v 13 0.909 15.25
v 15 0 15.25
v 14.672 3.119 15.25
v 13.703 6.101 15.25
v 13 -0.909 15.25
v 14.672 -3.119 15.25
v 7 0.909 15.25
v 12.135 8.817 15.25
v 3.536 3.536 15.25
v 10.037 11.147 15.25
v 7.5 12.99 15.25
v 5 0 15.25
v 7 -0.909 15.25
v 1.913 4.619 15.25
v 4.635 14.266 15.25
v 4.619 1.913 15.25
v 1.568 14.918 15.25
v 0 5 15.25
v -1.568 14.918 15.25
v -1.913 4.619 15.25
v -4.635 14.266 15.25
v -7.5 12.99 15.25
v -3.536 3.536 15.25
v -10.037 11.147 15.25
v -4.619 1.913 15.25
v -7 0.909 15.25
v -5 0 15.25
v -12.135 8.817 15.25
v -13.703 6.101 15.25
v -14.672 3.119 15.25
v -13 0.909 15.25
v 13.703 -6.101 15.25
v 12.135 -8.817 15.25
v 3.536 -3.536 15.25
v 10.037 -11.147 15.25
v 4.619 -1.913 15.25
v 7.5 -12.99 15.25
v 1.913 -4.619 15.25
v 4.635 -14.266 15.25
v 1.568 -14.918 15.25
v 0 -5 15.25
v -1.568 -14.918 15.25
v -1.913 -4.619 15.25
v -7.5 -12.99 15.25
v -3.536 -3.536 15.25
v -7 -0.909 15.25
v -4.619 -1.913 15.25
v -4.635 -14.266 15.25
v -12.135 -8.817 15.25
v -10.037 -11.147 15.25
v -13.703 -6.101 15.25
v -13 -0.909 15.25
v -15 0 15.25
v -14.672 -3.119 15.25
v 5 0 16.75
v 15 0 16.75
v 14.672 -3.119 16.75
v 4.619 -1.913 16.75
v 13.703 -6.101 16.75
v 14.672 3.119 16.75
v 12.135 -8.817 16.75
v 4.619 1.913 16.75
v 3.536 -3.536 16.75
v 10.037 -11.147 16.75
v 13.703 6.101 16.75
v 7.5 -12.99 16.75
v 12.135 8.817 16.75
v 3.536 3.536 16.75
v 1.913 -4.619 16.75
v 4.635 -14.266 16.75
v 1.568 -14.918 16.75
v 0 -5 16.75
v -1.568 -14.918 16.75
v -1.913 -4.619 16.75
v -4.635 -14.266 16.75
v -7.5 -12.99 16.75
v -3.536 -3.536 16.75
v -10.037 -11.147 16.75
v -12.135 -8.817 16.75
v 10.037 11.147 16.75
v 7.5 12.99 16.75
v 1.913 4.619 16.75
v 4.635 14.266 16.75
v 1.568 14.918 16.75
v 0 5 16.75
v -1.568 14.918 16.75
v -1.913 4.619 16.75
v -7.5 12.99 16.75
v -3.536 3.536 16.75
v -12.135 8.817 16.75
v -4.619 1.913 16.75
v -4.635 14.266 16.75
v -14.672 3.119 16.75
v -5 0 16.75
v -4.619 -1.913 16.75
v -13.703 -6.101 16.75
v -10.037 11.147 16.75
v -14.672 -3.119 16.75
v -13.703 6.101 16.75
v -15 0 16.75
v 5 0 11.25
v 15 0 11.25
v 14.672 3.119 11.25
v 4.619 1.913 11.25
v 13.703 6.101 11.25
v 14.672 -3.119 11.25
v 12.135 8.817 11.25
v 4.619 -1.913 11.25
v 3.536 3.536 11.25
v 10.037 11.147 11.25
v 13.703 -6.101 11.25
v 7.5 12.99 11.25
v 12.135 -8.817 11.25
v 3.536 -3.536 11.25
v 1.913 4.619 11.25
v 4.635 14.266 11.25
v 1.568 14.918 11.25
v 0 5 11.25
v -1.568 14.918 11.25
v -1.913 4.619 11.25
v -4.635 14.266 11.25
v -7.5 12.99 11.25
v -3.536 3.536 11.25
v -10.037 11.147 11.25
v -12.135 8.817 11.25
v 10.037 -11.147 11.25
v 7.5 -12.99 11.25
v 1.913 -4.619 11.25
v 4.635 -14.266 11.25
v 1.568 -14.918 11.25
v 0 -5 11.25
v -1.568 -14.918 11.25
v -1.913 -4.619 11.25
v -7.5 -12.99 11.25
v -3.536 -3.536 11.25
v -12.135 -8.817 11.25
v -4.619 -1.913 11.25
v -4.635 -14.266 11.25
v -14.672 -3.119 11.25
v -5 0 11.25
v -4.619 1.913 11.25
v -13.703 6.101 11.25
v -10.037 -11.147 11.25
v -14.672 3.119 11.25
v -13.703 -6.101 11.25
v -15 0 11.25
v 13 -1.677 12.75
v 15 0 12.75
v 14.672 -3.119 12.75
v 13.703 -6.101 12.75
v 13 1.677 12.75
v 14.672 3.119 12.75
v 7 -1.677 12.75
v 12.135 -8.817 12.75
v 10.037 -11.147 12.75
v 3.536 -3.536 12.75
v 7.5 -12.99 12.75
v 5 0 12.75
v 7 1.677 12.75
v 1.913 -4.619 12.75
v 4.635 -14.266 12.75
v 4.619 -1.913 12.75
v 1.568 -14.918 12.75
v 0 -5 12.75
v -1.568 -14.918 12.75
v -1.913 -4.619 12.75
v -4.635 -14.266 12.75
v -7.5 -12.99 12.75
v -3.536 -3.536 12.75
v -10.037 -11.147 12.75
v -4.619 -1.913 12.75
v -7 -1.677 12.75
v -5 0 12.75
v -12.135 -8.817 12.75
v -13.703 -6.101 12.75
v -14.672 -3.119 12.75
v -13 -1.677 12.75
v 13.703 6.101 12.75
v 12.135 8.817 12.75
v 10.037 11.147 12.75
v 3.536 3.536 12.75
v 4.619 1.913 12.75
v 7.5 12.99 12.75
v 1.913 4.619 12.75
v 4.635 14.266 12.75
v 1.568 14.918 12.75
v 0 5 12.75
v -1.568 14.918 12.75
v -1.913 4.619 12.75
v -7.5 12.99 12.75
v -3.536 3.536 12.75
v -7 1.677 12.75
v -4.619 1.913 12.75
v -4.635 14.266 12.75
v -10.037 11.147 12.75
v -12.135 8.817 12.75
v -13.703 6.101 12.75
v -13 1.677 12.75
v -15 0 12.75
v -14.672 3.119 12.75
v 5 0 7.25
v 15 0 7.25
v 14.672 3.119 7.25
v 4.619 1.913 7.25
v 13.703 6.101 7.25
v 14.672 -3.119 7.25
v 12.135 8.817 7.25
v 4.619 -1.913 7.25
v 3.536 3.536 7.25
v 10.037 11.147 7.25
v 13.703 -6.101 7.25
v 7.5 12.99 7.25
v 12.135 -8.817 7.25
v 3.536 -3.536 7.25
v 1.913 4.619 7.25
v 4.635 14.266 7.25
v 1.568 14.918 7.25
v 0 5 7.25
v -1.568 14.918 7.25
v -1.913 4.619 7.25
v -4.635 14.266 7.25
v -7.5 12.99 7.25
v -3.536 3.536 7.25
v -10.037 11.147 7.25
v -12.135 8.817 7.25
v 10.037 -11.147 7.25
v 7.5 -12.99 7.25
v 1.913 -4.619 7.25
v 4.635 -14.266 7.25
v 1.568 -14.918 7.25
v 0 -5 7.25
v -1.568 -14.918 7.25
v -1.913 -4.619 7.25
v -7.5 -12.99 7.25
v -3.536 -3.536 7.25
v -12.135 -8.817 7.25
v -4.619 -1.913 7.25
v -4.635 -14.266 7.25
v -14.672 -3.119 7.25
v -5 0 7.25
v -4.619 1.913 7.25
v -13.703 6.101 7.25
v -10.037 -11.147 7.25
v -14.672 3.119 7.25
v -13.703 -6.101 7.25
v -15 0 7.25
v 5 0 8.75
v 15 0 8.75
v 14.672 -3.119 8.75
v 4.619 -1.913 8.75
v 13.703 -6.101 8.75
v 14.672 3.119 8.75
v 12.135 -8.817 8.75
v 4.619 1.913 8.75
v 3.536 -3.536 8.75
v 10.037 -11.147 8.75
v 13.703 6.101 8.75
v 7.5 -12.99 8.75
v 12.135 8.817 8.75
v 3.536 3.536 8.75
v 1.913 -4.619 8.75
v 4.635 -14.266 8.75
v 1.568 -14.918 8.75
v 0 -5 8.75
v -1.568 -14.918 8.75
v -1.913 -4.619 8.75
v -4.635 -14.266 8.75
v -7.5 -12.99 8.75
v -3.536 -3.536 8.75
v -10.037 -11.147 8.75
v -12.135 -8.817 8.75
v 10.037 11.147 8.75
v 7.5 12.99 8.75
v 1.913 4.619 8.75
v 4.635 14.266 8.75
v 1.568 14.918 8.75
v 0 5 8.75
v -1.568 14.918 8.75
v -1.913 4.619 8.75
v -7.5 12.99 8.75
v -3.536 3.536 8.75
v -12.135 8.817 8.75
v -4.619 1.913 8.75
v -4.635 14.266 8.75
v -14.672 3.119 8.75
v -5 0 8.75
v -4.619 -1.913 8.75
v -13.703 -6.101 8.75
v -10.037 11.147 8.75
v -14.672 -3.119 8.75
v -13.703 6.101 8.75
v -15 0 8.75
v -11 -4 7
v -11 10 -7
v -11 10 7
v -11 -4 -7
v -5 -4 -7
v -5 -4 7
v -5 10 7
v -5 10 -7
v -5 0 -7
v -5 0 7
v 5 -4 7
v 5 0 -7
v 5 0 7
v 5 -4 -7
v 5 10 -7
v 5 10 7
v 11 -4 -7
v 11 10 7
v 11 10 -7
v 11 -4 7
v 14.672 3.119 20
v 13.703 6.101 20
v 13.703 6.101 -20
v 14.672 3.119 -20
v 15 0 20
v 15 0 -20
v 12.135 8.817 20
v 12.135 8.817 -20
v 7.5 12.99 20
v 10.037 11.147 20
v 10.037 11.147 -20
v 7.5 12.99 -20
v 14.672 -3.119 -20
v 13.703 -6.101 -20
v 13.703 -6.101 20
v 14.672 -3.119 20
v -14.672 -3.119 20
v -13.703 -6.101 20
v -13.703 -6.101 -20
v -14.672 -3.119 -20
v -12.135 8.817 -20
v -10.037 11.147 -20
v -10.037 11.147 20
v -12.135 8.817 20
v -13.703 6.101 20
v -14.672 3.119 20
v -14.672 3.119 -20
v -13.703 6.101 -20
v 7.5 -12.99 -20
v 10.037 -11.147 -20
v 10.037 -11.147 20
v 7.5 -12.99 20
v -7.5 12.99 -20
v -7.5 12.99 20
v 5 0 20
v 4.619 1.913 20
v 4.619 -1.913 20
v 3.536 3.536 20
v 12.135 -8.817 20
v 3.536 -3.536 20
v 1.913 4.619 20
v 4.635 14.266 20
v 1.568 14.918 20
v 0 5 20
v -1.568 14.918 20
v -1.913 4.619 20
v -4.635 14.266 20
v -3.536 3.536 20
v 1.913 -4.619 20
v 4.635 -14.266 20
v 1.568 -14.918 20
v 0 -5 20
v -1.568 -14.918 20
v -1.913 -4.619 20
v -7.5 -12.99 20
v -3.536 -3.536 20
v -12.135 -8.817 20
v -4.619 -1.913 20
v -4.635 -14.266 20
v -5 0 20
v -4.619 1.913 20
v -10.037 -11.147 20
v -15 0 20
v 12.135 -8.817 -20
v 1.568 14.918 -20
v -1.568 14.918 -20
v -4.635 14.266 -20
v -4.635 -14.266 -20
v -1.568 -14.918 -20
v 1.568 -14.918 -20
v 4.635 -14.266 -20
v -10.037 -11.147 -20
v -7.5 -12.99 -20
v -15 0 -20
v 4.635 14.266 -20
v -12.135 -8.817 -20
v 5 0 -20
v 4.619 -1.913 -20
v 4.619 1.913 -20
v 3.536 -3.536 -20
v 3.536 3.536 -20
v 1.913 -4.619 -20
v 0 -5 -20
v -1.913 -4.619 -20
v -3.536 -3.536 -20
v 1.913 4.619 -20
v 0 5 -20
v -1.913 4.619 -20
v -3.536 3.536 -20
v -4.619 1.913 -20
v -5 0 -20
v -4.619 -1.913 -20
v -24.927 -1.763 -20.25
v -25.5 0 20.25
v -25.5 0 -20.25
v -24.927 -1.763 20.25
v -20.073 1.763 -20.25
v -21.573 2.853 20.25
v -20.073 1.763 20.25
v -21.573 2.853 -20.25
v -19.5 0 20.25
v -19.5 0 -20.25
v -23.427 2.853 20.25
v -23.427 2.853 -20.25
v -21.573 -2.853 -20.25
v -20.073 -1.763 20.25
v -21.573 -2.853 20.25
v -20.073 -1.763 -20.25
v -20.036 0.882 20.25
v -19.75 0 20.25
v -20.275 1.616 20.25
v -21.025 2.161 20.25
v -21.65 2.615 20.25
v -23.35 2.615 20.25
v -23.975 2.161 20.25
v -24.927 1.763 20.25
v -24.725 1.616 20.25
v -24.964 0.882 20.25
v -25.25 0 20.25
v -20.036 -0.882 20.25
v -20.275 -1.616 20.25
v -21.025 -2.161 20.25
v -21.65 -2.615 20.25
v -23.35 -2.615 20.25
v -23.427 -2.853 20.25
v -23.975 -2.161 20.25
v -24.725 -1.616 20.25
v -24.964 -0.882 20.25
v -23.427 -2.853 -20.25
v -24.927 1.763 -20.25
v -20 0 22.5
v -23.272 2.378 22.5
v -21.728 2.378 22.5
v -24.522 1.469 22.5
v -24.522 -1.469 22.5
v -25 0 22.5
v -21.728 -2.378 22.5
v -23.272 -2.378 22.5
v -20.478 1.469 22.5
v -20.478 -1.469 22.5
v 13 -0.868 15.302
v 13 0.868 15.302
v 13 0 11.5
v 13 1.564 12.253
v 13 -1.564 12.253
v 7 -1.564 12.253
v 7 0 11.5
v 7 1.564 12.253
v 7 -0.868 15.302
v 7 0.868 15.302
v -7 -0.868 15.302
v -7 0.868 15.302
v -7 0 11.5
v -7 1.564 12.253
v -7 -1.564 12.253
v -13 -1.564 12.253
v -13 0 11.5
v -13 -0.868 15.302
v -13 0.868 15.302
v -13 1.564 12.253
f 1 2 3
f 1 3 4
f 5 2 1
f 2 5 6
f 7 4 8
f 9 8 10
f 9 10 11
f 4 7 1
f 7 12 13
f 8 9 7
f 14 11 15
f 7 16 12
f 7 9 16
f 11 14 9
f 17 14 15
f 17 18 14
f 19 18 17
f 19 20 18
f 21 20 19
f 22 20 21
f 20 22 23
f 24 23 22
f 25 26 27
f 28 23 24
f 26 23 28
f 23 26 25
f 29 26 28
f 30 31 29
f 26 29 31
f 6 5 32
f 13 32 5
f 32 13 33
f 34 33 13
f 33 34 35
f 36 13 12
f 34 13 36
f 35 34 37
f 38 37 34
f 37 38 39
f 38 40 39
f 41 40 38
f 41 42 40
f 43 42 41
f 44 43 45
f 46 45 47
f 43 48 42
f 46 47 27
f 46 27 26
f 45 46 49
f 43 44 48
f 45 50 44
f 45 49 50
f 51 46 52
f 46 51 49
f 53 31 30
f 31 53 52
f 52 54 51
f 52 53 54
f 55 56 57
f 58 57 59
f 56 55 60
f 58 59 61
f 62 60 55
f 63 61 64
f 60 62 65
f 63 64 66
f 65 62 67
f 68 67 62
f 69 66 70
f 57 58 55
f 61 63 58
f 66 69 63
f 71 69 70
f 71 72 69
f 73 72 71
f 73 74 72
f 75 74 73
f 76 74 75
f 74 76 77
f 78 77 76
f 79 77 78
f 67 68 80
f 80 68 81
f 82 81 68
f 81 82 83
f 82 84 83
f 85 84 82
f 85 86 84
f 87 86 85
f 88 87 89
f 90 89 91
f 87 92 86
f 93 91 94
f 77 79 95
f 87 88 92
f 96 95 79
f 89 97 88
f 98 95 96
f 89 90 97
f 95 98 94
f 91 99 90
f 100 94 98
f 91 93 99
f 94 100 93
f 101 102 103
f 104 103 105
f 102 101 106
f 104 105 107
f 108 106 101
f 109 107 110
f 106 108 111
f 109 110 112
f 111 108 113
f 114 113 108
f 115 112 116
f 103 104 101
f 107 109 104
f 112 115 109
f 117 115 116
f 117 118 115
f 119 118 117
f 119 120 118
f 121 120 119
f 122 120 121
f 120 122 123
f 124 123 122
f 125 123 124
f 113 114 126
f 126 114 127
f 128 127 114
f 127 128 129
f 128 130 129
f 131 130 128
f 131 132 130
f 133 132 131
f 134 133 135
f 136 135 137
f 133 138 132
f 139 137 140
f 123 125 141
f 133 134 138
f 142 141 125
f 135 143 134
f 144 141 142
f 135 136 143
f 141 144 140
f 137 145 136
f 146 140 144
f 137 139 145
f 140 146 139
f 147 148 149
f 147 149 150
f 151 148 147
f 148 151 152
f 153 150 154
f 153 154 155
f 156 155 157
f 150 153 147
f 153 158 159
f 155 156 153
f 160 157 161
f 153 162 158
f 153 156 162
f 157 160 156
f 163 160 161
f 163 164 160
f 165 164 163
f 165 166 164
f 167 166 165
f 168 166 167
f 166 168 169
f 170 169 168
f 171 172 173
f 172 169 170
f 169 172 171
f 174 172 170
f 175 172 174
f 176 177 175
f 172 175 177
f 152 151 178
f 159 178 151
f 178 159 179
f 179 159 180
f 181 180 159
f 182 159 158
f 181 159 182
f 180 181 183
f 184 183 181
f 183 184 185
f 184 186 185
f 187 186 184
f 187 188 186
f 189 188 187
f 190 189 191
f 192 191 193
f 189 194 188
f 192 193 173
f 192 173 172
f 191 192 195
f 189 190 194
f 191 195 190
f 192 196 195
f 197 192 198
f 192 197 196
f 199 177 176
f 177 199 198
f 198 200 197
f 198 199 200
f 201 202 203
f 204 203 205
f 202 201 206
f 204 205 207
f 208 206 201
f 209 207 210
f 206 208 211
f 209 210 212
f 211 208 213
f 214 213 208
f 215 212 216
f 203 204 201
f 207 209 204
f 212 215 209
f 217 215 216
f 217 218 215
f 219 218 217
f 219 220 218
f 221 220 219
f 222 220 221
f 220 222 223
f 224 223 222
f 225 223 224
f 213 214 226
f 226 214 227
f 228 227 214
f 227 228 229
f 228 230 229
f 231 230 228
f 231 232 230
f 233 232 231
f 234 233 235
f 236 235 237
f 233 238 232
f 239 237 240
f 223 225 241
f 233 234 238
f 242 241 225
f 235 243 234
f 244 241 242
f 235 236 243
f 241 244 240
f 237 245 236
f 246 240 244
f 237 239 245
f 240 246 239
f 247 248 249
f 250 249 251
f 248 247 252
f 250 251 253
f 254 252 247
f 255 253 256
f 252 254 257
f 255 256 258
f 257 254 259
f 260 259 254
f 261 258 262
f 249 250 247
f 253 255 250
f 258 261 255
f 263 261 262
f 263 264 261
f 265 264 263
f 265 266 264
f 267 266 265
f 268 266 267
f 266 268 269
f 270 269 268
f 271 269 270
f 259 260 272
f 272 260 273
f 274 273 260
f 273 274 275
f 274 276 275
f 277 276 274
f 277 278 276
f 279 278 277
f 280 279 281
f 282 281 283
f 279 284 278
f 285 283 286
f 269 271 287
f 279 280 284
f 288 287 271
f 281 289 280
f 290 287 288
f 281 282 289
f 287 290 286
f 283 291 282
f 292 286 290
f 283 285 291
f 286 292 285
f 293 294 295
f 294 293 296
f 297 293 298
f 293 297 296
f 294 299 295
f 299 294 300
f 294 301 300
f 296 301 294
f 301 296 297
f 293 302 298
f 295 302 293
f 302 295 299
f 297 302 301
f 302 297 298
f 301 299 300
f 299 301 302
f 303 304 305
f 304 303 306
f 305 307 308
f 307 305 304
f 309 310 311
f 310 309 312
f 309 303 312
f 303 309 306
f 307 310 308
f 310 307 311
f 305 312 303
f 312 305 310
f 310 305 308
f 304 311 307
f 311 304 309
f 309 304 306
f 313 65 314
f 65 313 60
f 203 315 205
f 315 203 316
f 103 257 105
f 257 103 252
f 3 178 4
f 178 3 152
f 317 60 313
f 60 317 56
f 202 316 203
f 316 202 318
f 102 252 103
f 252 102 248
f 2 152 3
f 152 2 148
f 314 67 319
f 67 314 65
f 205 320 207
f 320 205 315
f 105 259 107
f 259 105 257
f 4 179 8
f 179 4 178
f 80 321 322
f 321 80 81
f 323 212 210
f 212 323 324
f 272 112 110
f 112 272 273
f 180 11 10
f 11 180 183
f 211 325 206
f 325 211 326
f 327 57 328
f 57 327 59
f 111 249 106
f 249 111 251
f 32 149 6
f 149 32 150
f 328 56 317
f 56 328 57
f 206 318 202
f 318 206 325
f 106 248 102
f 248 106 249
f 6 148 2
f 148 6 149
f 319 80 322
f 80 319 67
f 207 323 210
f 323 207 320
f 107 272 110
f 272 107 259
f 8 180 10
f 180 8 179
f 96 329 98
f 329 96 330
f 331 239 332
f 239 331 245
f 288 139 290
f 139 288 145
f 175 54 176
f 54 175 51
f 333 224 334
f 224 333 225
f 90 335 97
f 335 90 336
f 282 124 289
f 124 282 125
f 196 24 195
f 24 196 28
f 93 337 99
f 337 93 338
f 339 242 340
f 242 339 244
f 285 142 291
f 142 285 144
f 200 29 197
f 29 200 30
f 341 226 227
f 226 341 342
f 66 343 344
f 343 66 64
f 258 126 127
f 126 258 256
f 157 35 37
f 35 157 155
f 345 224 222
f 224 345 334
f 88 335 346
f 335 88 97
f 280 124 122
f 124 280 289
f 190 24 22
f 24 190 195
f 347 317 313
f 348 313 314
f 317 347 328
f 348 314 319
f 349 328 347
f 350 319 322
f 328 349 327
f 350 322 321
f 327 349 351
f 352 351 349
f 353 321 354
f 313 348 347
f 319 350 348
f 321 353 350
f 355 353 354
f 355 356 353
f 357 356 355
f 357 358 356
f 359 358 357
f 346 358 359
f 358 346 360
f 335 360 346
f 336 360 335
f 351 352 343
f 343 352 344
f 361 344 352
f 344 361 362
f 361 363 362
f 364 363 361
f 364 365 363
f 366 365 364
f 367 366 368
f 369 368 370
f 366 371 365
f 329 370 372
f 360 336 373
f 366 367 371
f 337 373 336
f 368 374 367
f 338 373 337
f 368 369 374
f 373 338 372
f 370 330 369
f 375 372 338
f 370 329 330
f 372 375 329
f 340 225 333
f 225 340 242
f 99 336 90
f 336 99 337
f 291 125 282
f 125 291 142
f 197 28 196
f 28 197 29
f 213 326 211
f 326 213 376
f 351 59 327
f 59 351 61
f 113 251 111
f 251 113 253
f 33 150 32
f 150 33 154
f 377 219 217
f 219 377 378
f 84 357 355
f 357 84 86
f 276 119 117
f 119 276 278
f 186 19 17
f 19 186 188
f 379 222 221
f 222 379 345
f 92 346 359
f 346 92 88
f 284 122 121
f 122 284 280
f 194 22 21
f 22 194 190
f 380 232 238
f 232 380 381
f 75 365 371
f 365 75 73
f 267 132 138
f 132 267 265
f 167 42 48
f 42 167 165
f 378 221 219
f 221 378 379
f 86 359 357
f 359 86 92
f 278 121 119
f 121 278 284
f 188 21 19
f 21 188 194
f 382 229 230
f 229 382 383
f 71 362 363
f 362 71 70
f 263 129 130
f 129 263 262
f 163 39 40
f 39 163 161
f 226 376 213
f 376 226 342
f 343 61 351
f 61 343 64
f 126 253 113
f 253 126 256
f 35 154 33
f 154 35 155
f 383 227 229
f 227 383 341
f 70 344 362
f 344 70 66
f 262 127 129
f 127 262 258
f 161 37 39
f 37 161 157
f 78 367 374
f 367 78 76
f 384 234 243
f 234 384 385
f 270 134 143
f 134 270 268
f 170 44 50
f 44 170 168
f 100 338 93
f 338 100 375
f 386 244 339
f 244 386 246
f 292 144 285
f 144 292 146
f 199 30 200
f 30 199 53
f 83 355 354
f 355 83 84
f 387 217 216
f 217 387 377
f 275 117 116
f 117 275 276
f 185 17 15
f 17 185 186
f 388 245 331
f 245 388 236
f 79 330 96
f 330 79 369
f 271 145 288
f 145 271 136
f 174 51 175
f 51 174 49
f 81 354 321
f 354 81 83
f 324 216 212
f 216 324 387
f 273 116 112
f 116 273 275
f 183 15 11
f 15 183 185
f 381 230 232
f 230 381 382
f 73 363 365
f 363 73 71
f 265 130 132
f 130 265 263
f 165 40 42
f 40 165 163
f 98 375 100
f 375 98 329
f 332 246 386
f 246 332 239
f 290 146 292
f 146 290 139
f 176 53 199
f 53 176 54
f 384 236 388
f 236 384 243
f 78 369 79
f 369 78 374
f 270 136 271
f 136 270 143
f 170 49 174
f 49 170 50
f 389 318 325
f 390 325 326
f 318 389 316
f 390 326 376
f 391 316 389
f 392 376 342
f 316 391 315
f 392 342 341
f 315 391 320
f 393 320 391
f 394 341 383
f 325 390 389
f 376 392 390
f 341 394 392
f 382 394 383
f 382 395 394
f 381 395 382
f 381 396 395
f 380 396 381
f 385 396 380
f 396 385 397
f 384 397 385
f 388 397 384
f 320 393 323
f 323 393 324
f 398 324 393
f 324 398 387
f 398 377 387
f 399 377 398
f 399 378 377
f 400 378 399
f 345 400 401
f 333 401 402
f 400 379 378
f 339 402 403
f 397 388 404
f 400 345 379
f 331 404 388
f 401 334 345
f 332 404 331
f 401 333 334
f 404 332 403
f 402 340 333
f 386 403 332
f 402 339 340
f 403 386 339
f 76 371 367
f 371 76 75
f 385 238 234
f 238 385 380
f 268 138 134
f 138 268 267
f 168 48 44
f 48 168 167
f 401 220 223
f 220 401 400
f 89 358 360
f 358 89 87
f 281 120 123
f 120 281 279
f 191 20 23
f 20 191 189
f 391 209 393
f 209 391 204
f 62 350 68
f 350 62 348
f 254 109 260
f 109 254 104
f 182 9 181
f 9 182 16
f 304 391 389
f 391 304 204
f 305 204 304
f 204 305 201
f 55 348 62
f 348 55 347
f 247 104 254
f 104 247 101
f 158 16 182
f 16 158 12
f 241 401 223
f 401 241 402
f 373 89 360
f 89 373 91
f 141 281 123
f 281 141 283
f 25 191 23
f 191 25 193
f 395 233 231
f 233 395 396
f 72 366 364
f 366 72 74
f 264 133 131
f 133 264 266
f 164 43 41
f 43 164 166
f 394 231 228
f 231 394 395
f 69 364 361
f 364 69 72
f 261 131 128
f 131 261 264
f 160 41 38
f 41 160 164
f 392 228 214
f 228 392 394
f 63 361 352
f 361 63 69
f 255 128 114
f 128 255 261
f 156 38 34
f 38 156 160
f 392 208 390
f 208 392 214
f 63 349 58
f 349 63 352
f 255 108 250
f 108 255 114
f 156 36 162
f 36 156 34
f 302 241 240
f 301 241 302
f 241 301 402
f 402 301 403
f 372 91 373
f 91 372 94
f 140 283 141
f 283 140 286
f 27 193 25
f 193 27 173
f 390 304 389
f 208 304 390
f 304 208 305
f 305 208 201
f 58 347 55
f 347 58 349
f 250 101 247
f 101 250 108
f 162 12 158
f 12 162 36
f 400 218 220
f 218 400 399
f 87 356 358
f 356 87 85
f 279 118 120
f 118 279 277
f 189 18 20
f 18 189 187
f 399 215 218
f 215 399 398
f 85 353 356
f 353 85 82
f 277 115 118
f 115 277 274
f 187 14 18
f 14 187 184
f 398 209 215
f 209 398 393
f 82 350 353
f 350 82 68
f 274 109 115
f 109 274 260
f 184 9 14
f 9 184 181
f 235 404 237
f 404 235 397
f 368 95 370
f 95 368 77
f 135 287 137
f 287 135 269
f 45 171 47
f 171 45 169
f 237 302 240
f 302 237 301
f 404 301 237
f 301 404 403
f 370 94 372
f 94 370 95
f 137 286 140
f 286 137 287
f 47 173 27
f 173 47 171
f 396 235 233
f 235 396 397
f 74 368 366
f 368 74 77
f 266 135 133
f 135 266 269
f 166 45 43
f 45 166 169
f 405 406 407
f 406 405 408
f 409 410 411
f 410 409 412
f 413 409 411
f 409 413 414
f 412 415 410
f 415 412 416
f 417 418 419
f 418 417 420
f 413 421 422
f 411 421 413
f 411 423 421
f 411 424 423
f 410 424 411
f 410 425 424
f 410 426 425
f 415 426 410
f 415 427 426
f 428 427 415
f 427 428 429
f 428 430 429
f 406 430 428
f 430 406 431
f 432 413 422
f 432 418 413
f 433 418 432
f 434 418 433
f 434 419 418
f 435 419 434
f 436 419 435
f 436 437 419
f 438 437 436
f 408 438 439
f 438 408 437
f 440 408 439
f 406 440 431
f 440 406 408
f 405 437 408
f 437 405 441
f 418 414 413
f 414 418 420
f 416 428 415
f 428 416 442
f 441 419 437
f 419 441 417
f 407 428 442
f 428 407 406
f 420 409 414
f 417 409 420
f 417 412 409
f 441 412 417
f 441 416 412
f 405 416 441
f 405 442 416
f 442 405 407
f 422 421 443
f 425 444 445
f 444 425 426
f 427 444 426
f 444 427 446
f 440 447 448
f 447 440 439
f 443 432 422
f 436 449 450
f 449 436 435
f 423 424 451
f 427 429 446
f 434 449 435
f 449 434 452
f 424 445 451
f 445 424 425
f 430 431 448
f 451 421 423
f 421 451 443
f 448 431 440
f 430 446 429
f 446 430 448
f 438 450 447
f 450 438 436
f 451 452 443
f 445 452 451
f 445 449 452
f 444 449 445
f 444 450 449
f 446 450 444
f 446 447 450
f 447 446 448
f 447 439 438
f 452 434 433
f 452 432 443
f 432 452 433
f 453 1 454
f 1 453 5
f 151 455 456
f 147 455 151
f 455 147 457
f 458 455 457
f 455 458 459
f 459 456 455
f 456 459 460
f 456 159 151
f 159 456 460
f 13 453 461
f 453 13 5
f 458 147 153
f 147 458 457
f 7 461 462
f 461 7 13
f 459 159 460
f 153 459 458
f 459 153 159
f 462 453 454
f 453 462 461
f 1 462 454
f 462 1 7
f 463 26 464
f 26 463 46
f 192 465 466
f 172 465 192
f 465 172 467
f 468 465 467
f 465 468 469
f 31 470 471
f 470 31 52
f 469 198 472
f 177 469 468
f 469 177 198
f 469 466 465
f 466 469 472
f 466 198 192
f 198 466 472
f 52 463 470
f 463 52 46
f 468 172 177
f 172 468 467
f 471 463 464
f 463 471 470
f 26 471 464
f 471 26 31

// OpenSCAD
// Parameters
cylinder_diameter = 30;
cylinder_length = 40;
hole_diameter = 10;
groove_width = 4;
groove_depth = 1.5; // Reduced groove depth
num_grooves = 3;
pin_diameter = 6;
pin_length = 45; // Trimmed length of the central pin shaft
screw_slot_width = 14; // Widened the adjustment slots
screw_slot_depth = 6;
screw_diameter = 4;

// Function to create grooves
module cylinder_with_grooves() {
    difference() {
        cylinder(d = cylinder_diameter, h = cylinder_length, center = true);
        cylinder(d = hole_diameter, h = cylinder_length + 2, center = true);
        for (i = [1:num_grooves]) {
            translate([0, 0, cylinder_length/2 - groove_width*i])
                cylinder(d = cylinder_diameter + 2, h = groove_depth, center = true);
        }
        for (pos = [-cylinder_length/5, cylinder_length/5]) { // Adjusted position of the slot cutouts
            rotate([90, 0, 0])
                translate([pos, 0, -screw_slot_depth/2])
                    cube([screw_slot_depth, screw_slot_width, screw_slot_width], center = true);
        }
    }
}

// Module for central pin shaft
module central_pin() {
    translate([-pin_length/2, 0, 0])
        rotate([0, 0, 0])  // Added to introduce tapering
            union() {
                cylinder(d = pin_diameter, h = pin_length * 0.9, center = true);
                translate([0, 0, pin_length * 0.9 / 2])
                    cylinder(d1 = pin_diameter, d2 = pin_diameter - 1, h = pin_length * 0.1, center = true);
            }
}

// Module for adjustment slot with screws
module adjustment_screw() {
    translate([cylinder_length/4, 0, cylinder_diameter/2 + groove_depth - screw_slot_depth/2])
        rotate([0, 90, 0])
            cylinder(d = screw_diameter, h = screw_slot_depth, center = true);
    translate([-cylinder_length/4, 0, cylinder_diameter/2 + groove_depth - screw_slot_depth/2])
        rotate([0, 90, 0])
            cylinder(d = screw_diameter, h = screw_slot_depth, center = true);
}

// Assemble all components
module flexible_coupling() {
    cylinder_with_grooves();
    central_pin();
    adjustment_screw();
}

// Render the model
flexible_coupling();
